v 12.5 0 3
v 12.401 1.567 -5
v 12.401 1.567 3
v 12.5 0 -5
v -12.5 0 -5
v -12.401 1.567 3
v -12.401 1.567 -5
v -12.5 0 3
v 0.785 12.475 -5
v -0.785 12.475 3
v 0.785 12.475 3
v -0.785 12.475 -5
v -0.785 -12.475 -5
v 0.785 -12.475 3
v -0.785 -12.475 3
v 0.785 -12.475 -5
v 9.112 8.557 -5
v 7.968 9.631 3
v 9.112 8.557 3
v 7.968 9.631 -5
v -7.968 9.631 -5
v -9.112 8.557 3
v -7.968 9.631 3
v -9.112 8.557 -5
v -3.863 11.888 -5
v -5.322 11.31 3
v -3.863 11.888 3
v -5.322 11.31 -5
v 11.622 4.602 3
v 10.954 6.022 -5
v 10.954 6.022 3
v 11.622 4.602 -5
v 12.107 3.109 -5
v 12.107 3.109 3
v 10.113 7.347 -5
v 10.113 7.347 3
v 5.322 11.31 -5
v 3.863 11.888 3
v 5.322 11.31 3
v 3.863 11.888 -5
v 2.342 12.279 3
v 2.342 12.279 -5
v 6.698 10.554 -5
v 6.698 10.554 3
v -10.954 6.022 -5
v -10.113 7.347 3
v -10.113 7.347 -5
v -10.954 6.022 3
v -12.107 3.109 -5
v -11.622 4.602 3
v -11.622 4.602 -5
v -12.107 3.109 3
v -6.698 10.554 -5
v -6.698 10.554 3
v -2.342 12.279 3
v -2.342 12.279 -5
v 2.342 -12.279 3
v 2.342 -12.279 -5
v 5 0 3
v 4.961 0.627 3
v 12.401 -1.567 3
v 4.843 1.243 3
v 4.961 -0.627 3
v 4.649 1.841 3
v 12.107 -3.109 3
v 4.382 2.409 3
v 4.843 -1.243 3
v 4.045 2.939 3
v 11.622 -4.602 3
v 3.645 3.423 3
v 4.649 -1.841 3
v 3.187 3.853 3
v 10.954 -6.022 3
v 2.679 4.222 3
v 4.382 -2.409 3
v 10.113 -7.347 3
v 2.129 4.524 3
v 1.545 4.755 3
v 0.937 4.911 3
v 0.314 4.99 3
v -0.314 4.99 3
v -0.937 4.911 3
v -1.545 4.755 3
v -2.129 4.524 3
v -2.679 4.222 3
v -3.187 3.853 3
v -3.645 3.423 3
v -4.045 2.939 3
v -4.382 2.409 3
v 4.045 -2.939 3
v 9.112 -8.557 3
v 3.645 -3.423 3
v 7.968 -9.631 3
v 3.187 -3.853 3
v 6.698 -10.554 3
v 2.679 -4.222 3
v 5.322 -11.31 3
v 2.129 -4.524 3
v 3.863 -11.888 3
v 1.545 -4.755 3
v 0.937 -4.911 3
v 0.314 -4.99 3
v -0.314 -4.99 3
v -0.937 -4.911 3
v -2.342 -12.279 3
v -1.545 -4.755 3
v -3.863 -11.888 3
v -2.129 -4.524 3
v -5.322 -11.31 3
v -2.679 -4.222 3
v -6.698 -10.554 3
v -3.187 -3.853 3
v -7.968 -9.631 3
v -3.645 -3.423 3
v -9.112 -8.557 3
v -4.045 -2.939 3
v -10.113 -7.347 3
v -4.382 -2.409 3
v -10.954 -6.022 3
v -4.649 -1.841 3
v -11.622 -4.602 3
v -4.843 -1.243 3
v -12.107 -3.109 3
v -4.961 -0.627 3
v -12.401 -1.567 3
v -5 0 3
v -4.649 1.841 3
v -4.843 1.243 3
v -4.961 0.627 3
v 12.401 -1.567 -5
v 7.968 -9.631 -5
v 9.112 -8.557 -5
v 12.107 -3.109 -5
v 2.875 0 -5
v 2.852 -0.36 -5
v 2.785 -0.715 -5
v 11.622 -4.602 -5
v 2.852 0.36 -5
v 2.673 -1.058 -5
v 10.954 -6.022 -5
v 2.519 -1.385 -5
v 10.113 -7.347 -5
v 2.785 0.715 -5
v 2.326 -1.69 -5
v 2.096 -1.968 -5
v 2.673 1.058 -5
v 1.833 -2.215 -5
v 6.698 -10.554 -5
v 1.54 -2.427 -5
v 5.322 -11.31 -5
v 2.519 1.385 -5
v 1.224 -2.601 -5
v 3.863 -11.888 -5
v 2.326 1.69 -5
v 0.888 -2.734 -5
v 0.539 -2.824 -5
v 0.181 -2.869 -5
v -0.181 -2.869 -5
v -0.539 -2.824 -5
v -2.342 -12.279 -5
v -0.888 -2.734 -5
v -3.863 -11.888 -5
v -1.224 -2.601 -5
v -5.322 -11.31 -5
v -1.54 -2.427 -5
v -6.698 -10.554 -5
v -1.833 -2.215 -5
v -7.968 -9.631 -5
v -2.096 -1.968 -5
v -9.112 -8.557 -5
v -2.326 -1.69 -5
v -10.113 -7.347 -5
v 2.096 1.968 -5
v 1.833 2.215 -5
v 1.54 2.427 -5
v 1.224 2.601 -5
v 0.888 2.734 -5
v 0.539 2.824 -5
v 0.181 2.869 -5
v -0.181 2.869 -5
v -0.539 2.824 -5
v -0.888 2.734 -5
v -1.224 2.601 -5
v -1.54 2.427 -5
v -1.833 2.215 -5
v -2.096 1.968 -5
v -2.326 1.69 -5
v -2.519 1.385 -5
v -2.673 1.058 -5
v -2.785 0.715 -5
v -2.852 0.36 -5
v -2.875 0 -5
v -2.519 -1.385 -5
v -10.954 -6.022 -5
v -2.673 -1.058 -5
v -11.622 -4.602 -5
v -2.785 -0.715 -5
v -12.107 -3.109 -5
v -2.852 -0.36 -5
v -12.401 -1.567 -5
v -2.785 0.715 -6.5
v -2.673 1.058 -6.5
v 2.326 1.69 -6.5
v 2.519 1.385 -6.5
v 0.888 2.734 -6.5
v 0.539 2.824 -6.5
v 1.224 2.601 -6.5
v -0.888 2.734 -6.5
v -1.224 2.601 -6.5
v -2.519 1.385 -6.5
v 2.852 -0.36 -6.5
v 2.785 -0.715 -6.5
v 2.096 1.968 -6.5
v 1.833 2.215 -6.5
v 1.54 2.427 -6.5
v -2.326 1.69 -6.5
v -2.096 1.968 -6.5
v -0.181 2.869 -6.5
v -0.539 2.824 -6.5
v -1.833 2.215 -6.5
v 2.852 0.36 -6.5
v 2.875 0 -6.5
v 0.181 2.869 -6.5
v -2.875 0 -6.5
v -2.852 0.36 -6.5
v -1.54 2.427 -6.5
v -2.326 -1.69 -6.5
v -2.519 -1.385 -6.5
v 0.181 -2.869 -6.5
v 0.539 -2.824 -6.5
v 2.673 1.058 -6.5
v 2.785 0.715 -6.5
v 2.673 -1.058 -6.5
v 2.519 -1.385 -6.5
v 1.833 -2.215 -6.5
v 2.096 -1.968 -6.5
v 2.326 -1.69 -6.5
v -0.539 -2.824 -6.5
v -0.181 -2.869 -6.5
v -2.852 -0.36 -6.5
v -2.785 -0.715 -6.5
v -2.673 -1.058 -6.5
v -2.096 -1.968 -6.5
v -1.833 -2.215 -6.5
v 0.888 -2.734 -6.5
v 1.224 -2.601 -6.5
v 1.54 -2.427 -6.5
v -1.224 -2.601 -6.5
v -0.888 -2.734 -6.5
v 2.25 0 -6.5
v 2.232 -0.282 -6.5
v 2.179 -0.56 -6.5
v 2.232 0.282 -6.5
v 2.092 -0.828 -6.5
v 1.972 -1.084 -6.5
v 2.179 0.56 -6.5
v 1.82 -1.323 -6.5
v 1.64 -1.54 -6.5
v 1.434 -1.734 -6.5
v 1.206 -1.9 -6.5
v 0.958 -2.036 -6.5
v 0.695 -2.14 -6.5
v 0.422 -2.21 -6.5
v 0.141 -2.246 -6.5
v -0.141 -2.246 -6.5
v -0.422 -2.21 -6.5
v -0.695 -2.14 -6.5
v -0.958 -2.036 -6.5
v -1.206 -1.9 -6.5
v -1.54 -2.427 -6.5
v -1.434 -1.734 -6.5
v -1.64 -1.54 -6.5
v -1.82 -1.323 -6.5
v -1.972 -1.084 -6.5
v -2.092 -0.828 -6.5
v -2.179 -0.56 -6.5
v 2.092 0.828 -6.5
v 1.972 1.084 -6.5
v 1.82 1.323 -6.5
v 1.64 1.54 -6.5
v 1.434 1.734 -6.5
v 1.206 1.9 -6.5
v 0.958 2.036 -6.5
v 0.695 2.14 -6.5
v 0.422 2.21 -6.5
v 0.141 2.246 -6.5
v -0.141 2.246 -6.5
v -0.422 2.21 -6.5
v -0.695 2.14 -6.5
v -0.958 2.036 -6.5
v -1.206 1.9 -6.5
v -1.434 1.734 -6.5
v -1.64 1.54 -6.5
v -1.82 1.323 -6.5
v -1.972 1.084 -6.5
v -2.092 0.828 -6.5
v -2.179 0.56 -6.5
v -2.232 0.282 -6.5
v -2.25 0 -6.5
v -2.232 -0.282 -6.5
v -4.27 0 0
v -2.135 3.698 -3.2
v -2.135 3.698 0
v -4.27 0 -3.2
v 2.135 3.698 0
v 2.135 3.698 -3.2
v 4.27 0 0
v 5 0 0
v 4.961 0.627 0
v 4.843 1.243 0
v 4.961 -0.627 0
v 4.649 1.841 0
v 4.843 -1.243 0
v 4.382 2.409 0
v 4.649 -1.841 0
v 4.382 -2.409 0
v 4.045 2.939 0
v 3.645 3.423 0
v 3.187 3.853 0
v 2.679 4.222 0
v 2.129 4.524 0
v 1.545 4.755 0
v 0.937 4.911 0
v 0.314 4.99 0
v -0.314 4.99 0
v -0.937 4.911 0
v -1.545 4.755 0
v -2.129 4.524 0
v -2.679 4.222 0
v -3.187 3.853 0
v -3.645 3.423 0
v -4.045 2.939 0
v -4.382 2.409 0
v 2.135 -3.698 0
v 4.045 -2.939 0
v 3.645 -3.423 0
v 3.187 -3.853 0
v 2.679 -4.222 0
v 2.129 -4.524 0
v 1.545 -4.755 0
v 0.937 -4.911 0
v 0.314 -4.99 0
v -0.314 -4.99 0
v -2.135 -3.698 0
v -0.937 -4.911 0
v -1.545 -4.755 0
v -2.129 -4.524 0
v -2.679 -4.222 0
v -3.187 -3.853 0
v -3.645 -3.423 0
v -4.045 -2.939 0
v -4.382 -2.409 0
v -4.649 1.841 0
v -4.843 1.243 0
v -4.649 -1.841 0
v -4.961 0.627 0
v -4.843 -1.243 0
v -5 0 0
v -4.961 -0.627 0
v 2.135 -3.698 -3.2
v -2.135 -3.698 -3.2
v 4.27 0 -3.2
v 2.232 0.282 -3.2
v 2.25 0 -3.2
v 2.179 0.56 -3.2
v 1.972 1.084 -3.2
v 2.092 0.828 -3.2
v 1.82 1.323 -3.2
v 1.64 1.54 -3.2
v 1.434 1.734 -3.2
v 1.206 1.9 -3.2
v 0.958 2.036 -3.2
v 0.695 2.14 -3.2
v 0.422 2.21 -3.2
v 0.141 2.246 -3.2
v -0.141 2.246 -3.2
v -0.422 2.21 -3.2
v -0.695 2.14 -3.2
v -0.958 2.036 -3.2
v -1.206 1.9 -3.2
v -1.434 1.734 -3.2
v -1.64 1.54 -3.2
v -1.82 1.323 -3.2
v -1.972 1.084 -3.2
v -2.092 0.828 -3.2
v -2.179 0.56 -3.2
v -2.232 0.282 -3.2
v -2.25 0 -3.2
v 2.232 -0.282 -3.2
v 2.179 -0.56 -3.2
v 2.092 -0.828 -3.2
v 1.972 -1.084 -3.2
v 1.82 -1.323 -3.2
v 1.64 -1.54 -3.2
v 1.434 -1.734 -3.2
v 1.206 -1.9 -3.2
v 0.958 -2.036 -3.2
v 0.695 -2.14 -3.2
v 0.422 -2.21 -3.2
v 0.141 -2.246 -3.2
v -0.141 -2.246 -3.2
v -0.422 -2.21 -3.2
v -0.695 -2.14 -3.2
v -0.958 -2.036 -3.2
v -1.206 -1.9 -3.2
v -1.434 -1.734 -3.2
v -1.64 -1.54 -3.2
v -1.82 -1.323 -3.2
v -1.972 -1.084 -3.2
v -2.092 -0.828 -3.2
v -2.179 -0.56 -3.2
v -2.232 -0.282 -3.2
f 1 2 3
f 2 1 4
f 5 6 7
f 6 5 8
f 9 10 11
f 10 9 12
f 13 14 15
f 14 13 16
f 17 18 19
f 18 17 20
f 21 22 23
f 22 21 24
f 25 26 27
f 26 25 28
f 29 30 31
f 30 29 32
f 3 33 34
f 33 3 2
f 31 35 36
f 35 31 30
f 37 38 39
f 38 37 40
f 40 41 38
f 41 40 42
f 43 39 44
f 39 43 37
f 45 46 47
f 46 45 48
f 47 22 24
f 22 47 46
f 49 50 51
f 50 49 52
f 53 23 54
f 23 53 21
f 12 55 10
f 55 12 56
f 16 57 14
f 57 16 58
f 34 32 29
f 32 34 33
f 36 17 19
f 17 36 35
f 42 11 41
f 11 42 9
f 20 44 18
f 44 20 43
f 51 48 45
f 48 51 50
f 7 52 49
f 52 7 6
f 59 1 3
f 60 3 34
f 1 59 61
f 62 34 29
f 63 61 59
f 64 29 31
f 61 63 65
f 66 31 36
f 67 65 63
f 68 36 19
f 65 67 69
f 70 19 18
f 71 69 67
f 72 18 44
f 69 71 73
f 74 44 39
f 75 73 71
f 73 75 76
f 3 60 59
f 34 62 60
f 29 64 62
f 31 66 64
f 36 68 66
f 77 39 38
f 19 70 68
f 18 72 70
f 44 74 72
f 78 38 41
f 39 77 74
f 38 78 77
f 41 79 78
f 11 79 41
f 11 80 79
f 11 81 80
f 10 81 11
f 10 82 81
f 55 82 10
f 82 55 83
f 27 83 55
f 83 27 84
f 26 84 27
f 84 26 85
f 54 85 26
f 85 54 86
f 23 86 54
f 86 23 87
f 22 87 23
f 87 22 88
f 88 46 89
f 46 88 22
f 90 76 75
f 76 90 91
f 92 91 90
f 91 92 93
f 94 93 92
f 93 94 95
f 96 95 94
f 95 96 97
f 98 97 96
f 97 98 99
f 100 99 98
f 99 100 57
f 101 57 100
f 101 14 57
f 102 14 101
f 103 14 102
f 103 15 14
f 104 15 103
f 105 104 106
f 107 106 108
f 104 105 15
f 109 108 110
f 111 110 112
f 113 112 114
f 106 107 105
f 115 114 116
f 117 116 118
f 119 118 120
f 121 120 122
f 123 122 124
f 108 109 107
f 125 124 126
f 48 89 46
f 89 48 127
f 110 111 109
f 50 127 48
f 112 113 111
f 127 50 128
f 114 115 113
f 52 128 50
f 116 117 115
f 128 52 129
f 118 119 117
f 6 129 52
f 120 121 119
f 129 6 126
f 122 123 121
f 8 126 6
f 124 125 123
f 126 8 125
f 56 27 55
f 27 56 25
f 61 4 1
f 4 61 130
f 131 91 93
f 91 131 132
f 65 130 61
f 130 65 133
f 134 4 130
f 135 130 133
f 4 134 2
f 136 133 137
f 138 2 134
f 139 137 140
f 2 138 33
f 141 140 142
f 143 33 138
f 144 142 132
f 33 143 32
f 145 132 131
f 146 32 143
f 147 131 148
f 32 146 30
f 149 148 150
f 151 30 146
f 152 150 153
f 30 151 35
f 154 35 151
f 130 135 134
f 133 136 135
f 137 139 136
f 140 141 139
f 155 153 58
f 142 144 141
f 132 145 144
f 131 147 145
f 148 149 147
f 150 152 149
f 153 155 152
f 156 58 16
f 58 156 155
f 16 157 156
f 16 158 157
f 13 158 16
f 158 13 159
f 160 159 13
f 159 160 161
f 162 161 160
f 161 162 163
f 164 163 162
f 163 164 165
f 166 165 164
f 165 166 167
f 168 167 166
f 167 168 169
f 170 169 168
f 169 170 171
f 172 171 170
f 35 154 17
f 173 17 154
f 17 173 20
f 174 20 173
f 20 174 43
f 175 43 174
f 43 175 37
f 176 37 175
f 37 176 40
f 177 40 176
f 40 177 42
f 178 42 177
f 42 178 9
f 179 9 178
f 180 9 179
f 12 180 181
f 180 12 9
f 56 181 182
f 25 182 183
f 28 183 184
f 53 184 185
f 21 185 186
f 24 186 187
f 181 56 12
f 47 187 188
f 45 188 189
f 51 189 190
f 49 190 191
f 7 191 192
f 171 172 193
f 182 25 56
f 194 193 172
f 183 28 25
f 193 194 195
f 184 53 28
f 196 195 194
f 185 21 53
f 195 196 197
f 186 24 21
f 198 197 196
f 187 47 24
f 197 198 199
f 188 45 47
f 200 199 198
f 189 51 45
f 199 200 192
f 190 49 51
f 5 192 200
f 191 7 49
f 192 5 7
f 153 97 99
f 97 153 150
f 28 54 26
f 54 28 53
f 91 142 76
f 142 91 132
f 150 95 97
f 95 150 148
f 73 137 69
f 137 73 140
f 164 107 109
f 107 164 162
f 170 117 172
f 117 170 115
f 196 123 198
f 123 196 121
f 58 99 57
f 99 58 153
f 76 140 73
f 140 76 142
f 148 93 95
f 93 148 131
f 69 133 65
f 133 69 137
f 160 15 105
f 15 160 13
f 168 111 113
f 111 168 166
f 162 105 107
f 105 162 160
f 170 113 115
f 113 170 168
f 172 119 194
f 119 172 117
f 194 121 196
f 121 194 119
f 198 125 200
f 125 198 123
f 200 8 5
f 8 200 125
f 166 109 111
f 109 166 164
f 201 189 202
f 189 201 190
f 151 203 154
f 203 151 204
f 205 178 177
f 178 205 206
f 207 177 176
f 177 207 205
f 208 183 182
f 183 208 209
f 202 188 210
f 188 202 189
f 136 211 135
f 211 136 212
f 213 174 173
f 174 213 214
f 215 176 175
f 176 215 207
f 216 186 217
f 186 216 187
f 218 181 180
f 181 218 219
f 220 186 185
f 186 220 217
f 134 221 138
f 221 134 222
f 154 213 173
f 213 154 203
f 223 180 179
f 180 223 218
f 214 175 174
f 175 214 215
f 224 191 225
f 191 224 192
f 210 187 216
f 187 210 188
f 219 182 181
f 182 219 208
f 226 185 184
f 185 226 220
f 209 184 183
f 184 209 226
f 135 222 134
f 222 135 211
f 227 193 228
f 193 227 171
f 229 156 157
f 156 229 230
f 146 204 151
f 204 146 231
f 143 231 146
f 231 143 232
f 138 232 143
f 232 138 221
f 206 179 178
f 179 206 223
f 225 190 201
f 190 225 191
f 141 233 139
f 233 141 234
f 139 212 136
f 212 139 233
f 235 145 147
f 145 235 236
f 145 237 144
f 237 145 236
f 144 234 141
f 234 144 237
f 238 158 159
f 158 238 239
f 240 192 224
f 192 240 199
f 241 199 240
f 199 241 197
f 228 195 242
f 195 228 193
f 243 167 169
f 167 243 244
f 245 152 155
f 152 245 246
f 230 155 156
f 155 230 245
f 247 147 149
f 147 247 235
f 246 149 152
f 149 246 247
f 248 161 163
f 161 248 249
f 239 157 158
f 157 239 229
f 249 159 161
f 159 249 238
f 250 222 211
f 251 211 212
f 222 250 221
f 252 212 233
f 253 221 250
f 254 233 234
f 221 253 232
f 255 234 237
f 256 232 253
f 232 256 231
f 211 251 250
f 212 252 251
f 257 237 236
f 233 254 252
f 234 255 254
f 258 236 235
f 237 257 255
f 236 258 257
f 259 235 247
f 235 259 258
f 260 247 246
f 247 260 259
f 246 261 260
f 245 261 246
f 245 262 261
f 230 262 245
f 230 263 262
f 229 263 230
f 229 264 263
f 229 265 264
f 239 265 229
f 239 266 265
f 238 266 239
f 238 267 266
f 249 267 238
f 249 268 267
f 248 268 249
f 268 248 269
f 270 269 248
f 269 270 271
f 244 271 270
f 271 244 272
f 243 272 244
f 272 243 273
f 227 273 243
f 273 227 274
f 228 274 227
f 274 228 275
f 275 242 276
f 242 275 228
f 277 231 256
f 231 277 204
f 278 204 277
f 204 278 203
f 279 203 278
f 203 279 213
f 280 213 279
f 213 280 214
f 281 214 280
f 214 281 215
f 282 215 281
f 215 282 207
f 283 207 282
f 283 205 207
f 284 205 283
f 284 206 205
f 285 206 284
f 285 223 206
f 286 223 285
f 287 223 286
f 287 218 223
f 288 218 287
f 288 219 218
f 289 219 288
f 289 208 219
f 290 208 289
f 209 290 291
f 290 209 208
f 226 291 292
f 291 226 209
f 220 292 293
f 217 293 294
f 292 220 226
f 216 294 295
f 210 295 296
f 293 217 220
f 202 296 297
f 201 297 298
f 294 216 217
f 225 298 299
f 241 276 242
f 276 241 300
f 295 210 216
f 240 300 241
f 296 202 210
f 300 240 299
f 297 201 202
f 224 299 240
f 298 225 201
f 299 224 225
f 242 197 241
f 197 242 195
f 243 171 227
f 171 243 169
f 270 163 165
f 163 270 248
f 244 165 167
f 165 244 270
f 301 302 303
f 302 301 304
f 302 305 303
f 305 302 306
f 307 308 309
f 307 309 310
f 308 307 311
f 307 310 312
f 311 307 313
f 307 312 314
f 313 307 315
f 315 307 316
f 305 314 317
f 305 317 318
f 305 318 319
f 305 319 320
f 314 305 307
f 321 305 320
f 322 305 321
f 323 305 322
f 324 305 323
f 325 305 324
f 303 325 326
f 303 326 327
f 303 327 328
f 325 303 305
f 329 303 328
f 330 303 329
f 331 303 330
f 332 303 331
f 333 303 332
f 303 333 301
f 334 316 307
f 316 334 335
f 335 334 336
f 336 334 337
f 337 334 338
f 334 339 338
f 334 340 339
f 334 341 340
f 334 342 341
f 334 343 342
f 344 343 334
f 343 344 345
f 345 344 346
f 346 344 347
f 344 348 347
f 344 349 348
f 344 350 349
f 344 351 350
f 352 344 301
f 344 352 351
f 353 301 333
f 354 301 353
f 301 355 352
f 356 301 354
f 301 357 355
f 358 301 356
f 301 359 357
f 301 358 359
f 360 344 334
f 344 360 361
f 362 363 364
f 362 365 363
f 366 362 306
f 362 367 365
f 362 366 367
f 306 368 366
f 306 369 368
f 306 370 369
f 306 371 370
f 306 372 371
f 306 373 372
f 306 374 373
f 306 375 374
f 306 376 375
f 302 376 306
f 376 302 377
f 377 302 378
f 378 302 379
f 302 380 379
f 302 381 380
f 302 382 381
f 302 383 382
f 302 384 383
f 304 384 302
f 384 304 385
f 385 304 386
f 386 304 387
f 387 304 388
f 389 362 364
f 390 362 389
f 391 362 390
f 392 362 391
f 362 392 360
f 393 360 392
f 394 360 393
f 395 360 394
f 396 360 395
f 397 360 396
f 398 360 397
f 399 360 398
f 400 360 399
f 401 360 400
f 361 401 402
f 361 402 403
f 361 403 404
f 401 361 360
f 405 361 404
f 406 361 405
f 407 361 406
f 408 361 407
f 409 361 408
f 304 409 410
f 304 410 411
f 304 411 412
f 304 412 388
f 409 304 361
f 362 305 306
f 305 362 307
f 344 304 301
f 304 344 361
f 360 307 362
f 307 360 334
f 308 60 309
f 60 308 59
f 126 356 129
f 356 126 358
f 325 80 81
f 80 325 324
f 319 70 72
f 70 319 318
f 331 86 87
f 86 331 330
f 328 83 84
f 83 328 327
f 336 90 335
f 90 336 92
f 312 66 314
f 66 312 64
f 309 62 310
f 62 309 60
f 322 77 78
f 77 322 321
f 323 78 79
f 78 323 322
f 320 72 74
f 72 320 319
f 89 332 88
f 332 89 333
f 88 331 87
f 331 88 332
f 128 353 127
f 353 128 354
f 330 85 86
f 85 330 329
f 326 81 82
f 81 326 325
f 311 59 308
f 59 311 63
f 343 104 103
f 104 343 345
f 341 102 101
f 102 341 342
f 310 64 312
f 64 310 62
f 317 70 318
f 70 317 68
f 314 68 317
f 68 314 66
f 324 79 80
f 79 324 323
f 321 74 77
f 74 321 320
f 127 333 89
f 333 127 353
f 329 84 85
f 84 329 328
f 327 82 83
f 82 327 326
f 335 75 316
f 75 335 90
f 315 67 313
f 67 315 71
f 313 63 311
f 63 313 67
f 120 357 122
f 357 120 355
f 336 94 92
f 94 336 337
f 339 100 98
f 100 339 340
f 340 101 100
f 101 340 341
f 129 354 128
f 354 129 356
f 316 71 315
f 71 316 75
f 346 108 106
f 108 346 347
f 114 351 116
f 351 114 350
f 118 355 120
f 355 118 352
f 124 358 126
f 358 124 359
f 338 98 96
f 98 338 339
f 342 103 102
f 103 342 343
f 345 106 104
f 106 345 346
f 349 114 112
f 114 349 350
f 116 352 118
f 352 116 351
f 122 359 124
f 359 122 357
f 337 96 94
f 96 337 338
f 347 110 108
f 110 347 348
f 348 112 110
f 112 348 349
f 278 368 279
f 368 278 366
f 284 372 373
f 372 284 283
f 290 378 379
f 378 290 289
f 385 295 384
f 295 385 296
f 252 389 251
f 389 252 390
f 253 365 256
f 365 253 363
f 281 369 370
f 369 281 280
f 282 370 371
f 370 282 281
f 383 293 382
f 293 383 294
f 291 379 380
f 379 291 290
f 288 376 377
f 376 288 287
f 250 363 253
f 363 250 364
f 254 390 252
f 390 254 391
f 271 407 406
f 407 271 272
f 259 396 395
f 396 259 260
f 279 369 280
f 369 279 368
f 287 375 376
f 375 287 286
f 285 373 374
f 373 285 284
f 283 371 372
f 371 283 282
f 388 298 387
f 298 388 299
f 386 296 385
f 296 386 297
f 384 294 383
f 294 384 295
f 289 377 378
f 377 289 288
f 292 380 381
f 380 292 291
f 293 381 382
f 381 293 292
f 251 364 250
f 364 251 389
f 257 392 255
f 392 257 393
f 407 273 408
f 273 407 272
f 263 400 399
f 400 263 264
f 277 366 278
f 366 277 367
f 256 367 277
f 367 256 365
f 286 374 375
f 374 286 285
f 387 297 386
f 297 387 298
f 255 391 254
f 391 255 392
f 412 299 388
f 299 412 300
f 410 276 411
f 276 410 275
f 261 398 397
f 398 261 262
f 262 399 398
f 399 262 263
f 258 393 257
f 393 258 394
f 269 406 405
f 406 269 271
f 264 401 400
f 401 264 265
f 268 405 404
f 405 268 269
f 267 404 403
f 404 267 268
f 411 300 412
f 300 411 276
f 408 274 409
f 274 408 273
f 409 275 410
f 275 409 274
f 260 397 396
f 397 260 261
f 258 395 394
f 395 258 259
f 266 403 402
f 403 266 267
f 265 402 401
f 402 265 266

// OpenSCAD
$fn = 50;

difference() {
	union() {
		translate(v = [0, 0, -5.0]) {
			cylinder(h = 8.0, r = 12.5);
		}
		#translate(v = [0, 0, -6.5]) {
			cylinder(h = 6.5, r = 2.875);
		}
	}
	union() {
		translate(v = [0, 0, 0]) {
			rotate(a = [0, 0, 0]) {
				difference() {
					union() {
						translate(v = [0, 0, -3.2]) {
							linear_extrude(height = 3.2) {
								polygon(points = [[4.2698, 0.0], [2.1349000000000005, 3.697755269078796], [-2.134899999999999, 3.6977552690787965], [-4.2698, 5.228996902999369e-16], [-2.134900000000002, -3.6977552690787956], [2.1348999999999974, -3.697755269078798]]);
							}
						}
					}
					union();
				}
			}
		}
		#cylinder(h = 3, r = 5.0);
		#translate(v = [0, 0, -100.0]) {
			cylinder(h = 200, r = 2.25);
		}
	}
}
